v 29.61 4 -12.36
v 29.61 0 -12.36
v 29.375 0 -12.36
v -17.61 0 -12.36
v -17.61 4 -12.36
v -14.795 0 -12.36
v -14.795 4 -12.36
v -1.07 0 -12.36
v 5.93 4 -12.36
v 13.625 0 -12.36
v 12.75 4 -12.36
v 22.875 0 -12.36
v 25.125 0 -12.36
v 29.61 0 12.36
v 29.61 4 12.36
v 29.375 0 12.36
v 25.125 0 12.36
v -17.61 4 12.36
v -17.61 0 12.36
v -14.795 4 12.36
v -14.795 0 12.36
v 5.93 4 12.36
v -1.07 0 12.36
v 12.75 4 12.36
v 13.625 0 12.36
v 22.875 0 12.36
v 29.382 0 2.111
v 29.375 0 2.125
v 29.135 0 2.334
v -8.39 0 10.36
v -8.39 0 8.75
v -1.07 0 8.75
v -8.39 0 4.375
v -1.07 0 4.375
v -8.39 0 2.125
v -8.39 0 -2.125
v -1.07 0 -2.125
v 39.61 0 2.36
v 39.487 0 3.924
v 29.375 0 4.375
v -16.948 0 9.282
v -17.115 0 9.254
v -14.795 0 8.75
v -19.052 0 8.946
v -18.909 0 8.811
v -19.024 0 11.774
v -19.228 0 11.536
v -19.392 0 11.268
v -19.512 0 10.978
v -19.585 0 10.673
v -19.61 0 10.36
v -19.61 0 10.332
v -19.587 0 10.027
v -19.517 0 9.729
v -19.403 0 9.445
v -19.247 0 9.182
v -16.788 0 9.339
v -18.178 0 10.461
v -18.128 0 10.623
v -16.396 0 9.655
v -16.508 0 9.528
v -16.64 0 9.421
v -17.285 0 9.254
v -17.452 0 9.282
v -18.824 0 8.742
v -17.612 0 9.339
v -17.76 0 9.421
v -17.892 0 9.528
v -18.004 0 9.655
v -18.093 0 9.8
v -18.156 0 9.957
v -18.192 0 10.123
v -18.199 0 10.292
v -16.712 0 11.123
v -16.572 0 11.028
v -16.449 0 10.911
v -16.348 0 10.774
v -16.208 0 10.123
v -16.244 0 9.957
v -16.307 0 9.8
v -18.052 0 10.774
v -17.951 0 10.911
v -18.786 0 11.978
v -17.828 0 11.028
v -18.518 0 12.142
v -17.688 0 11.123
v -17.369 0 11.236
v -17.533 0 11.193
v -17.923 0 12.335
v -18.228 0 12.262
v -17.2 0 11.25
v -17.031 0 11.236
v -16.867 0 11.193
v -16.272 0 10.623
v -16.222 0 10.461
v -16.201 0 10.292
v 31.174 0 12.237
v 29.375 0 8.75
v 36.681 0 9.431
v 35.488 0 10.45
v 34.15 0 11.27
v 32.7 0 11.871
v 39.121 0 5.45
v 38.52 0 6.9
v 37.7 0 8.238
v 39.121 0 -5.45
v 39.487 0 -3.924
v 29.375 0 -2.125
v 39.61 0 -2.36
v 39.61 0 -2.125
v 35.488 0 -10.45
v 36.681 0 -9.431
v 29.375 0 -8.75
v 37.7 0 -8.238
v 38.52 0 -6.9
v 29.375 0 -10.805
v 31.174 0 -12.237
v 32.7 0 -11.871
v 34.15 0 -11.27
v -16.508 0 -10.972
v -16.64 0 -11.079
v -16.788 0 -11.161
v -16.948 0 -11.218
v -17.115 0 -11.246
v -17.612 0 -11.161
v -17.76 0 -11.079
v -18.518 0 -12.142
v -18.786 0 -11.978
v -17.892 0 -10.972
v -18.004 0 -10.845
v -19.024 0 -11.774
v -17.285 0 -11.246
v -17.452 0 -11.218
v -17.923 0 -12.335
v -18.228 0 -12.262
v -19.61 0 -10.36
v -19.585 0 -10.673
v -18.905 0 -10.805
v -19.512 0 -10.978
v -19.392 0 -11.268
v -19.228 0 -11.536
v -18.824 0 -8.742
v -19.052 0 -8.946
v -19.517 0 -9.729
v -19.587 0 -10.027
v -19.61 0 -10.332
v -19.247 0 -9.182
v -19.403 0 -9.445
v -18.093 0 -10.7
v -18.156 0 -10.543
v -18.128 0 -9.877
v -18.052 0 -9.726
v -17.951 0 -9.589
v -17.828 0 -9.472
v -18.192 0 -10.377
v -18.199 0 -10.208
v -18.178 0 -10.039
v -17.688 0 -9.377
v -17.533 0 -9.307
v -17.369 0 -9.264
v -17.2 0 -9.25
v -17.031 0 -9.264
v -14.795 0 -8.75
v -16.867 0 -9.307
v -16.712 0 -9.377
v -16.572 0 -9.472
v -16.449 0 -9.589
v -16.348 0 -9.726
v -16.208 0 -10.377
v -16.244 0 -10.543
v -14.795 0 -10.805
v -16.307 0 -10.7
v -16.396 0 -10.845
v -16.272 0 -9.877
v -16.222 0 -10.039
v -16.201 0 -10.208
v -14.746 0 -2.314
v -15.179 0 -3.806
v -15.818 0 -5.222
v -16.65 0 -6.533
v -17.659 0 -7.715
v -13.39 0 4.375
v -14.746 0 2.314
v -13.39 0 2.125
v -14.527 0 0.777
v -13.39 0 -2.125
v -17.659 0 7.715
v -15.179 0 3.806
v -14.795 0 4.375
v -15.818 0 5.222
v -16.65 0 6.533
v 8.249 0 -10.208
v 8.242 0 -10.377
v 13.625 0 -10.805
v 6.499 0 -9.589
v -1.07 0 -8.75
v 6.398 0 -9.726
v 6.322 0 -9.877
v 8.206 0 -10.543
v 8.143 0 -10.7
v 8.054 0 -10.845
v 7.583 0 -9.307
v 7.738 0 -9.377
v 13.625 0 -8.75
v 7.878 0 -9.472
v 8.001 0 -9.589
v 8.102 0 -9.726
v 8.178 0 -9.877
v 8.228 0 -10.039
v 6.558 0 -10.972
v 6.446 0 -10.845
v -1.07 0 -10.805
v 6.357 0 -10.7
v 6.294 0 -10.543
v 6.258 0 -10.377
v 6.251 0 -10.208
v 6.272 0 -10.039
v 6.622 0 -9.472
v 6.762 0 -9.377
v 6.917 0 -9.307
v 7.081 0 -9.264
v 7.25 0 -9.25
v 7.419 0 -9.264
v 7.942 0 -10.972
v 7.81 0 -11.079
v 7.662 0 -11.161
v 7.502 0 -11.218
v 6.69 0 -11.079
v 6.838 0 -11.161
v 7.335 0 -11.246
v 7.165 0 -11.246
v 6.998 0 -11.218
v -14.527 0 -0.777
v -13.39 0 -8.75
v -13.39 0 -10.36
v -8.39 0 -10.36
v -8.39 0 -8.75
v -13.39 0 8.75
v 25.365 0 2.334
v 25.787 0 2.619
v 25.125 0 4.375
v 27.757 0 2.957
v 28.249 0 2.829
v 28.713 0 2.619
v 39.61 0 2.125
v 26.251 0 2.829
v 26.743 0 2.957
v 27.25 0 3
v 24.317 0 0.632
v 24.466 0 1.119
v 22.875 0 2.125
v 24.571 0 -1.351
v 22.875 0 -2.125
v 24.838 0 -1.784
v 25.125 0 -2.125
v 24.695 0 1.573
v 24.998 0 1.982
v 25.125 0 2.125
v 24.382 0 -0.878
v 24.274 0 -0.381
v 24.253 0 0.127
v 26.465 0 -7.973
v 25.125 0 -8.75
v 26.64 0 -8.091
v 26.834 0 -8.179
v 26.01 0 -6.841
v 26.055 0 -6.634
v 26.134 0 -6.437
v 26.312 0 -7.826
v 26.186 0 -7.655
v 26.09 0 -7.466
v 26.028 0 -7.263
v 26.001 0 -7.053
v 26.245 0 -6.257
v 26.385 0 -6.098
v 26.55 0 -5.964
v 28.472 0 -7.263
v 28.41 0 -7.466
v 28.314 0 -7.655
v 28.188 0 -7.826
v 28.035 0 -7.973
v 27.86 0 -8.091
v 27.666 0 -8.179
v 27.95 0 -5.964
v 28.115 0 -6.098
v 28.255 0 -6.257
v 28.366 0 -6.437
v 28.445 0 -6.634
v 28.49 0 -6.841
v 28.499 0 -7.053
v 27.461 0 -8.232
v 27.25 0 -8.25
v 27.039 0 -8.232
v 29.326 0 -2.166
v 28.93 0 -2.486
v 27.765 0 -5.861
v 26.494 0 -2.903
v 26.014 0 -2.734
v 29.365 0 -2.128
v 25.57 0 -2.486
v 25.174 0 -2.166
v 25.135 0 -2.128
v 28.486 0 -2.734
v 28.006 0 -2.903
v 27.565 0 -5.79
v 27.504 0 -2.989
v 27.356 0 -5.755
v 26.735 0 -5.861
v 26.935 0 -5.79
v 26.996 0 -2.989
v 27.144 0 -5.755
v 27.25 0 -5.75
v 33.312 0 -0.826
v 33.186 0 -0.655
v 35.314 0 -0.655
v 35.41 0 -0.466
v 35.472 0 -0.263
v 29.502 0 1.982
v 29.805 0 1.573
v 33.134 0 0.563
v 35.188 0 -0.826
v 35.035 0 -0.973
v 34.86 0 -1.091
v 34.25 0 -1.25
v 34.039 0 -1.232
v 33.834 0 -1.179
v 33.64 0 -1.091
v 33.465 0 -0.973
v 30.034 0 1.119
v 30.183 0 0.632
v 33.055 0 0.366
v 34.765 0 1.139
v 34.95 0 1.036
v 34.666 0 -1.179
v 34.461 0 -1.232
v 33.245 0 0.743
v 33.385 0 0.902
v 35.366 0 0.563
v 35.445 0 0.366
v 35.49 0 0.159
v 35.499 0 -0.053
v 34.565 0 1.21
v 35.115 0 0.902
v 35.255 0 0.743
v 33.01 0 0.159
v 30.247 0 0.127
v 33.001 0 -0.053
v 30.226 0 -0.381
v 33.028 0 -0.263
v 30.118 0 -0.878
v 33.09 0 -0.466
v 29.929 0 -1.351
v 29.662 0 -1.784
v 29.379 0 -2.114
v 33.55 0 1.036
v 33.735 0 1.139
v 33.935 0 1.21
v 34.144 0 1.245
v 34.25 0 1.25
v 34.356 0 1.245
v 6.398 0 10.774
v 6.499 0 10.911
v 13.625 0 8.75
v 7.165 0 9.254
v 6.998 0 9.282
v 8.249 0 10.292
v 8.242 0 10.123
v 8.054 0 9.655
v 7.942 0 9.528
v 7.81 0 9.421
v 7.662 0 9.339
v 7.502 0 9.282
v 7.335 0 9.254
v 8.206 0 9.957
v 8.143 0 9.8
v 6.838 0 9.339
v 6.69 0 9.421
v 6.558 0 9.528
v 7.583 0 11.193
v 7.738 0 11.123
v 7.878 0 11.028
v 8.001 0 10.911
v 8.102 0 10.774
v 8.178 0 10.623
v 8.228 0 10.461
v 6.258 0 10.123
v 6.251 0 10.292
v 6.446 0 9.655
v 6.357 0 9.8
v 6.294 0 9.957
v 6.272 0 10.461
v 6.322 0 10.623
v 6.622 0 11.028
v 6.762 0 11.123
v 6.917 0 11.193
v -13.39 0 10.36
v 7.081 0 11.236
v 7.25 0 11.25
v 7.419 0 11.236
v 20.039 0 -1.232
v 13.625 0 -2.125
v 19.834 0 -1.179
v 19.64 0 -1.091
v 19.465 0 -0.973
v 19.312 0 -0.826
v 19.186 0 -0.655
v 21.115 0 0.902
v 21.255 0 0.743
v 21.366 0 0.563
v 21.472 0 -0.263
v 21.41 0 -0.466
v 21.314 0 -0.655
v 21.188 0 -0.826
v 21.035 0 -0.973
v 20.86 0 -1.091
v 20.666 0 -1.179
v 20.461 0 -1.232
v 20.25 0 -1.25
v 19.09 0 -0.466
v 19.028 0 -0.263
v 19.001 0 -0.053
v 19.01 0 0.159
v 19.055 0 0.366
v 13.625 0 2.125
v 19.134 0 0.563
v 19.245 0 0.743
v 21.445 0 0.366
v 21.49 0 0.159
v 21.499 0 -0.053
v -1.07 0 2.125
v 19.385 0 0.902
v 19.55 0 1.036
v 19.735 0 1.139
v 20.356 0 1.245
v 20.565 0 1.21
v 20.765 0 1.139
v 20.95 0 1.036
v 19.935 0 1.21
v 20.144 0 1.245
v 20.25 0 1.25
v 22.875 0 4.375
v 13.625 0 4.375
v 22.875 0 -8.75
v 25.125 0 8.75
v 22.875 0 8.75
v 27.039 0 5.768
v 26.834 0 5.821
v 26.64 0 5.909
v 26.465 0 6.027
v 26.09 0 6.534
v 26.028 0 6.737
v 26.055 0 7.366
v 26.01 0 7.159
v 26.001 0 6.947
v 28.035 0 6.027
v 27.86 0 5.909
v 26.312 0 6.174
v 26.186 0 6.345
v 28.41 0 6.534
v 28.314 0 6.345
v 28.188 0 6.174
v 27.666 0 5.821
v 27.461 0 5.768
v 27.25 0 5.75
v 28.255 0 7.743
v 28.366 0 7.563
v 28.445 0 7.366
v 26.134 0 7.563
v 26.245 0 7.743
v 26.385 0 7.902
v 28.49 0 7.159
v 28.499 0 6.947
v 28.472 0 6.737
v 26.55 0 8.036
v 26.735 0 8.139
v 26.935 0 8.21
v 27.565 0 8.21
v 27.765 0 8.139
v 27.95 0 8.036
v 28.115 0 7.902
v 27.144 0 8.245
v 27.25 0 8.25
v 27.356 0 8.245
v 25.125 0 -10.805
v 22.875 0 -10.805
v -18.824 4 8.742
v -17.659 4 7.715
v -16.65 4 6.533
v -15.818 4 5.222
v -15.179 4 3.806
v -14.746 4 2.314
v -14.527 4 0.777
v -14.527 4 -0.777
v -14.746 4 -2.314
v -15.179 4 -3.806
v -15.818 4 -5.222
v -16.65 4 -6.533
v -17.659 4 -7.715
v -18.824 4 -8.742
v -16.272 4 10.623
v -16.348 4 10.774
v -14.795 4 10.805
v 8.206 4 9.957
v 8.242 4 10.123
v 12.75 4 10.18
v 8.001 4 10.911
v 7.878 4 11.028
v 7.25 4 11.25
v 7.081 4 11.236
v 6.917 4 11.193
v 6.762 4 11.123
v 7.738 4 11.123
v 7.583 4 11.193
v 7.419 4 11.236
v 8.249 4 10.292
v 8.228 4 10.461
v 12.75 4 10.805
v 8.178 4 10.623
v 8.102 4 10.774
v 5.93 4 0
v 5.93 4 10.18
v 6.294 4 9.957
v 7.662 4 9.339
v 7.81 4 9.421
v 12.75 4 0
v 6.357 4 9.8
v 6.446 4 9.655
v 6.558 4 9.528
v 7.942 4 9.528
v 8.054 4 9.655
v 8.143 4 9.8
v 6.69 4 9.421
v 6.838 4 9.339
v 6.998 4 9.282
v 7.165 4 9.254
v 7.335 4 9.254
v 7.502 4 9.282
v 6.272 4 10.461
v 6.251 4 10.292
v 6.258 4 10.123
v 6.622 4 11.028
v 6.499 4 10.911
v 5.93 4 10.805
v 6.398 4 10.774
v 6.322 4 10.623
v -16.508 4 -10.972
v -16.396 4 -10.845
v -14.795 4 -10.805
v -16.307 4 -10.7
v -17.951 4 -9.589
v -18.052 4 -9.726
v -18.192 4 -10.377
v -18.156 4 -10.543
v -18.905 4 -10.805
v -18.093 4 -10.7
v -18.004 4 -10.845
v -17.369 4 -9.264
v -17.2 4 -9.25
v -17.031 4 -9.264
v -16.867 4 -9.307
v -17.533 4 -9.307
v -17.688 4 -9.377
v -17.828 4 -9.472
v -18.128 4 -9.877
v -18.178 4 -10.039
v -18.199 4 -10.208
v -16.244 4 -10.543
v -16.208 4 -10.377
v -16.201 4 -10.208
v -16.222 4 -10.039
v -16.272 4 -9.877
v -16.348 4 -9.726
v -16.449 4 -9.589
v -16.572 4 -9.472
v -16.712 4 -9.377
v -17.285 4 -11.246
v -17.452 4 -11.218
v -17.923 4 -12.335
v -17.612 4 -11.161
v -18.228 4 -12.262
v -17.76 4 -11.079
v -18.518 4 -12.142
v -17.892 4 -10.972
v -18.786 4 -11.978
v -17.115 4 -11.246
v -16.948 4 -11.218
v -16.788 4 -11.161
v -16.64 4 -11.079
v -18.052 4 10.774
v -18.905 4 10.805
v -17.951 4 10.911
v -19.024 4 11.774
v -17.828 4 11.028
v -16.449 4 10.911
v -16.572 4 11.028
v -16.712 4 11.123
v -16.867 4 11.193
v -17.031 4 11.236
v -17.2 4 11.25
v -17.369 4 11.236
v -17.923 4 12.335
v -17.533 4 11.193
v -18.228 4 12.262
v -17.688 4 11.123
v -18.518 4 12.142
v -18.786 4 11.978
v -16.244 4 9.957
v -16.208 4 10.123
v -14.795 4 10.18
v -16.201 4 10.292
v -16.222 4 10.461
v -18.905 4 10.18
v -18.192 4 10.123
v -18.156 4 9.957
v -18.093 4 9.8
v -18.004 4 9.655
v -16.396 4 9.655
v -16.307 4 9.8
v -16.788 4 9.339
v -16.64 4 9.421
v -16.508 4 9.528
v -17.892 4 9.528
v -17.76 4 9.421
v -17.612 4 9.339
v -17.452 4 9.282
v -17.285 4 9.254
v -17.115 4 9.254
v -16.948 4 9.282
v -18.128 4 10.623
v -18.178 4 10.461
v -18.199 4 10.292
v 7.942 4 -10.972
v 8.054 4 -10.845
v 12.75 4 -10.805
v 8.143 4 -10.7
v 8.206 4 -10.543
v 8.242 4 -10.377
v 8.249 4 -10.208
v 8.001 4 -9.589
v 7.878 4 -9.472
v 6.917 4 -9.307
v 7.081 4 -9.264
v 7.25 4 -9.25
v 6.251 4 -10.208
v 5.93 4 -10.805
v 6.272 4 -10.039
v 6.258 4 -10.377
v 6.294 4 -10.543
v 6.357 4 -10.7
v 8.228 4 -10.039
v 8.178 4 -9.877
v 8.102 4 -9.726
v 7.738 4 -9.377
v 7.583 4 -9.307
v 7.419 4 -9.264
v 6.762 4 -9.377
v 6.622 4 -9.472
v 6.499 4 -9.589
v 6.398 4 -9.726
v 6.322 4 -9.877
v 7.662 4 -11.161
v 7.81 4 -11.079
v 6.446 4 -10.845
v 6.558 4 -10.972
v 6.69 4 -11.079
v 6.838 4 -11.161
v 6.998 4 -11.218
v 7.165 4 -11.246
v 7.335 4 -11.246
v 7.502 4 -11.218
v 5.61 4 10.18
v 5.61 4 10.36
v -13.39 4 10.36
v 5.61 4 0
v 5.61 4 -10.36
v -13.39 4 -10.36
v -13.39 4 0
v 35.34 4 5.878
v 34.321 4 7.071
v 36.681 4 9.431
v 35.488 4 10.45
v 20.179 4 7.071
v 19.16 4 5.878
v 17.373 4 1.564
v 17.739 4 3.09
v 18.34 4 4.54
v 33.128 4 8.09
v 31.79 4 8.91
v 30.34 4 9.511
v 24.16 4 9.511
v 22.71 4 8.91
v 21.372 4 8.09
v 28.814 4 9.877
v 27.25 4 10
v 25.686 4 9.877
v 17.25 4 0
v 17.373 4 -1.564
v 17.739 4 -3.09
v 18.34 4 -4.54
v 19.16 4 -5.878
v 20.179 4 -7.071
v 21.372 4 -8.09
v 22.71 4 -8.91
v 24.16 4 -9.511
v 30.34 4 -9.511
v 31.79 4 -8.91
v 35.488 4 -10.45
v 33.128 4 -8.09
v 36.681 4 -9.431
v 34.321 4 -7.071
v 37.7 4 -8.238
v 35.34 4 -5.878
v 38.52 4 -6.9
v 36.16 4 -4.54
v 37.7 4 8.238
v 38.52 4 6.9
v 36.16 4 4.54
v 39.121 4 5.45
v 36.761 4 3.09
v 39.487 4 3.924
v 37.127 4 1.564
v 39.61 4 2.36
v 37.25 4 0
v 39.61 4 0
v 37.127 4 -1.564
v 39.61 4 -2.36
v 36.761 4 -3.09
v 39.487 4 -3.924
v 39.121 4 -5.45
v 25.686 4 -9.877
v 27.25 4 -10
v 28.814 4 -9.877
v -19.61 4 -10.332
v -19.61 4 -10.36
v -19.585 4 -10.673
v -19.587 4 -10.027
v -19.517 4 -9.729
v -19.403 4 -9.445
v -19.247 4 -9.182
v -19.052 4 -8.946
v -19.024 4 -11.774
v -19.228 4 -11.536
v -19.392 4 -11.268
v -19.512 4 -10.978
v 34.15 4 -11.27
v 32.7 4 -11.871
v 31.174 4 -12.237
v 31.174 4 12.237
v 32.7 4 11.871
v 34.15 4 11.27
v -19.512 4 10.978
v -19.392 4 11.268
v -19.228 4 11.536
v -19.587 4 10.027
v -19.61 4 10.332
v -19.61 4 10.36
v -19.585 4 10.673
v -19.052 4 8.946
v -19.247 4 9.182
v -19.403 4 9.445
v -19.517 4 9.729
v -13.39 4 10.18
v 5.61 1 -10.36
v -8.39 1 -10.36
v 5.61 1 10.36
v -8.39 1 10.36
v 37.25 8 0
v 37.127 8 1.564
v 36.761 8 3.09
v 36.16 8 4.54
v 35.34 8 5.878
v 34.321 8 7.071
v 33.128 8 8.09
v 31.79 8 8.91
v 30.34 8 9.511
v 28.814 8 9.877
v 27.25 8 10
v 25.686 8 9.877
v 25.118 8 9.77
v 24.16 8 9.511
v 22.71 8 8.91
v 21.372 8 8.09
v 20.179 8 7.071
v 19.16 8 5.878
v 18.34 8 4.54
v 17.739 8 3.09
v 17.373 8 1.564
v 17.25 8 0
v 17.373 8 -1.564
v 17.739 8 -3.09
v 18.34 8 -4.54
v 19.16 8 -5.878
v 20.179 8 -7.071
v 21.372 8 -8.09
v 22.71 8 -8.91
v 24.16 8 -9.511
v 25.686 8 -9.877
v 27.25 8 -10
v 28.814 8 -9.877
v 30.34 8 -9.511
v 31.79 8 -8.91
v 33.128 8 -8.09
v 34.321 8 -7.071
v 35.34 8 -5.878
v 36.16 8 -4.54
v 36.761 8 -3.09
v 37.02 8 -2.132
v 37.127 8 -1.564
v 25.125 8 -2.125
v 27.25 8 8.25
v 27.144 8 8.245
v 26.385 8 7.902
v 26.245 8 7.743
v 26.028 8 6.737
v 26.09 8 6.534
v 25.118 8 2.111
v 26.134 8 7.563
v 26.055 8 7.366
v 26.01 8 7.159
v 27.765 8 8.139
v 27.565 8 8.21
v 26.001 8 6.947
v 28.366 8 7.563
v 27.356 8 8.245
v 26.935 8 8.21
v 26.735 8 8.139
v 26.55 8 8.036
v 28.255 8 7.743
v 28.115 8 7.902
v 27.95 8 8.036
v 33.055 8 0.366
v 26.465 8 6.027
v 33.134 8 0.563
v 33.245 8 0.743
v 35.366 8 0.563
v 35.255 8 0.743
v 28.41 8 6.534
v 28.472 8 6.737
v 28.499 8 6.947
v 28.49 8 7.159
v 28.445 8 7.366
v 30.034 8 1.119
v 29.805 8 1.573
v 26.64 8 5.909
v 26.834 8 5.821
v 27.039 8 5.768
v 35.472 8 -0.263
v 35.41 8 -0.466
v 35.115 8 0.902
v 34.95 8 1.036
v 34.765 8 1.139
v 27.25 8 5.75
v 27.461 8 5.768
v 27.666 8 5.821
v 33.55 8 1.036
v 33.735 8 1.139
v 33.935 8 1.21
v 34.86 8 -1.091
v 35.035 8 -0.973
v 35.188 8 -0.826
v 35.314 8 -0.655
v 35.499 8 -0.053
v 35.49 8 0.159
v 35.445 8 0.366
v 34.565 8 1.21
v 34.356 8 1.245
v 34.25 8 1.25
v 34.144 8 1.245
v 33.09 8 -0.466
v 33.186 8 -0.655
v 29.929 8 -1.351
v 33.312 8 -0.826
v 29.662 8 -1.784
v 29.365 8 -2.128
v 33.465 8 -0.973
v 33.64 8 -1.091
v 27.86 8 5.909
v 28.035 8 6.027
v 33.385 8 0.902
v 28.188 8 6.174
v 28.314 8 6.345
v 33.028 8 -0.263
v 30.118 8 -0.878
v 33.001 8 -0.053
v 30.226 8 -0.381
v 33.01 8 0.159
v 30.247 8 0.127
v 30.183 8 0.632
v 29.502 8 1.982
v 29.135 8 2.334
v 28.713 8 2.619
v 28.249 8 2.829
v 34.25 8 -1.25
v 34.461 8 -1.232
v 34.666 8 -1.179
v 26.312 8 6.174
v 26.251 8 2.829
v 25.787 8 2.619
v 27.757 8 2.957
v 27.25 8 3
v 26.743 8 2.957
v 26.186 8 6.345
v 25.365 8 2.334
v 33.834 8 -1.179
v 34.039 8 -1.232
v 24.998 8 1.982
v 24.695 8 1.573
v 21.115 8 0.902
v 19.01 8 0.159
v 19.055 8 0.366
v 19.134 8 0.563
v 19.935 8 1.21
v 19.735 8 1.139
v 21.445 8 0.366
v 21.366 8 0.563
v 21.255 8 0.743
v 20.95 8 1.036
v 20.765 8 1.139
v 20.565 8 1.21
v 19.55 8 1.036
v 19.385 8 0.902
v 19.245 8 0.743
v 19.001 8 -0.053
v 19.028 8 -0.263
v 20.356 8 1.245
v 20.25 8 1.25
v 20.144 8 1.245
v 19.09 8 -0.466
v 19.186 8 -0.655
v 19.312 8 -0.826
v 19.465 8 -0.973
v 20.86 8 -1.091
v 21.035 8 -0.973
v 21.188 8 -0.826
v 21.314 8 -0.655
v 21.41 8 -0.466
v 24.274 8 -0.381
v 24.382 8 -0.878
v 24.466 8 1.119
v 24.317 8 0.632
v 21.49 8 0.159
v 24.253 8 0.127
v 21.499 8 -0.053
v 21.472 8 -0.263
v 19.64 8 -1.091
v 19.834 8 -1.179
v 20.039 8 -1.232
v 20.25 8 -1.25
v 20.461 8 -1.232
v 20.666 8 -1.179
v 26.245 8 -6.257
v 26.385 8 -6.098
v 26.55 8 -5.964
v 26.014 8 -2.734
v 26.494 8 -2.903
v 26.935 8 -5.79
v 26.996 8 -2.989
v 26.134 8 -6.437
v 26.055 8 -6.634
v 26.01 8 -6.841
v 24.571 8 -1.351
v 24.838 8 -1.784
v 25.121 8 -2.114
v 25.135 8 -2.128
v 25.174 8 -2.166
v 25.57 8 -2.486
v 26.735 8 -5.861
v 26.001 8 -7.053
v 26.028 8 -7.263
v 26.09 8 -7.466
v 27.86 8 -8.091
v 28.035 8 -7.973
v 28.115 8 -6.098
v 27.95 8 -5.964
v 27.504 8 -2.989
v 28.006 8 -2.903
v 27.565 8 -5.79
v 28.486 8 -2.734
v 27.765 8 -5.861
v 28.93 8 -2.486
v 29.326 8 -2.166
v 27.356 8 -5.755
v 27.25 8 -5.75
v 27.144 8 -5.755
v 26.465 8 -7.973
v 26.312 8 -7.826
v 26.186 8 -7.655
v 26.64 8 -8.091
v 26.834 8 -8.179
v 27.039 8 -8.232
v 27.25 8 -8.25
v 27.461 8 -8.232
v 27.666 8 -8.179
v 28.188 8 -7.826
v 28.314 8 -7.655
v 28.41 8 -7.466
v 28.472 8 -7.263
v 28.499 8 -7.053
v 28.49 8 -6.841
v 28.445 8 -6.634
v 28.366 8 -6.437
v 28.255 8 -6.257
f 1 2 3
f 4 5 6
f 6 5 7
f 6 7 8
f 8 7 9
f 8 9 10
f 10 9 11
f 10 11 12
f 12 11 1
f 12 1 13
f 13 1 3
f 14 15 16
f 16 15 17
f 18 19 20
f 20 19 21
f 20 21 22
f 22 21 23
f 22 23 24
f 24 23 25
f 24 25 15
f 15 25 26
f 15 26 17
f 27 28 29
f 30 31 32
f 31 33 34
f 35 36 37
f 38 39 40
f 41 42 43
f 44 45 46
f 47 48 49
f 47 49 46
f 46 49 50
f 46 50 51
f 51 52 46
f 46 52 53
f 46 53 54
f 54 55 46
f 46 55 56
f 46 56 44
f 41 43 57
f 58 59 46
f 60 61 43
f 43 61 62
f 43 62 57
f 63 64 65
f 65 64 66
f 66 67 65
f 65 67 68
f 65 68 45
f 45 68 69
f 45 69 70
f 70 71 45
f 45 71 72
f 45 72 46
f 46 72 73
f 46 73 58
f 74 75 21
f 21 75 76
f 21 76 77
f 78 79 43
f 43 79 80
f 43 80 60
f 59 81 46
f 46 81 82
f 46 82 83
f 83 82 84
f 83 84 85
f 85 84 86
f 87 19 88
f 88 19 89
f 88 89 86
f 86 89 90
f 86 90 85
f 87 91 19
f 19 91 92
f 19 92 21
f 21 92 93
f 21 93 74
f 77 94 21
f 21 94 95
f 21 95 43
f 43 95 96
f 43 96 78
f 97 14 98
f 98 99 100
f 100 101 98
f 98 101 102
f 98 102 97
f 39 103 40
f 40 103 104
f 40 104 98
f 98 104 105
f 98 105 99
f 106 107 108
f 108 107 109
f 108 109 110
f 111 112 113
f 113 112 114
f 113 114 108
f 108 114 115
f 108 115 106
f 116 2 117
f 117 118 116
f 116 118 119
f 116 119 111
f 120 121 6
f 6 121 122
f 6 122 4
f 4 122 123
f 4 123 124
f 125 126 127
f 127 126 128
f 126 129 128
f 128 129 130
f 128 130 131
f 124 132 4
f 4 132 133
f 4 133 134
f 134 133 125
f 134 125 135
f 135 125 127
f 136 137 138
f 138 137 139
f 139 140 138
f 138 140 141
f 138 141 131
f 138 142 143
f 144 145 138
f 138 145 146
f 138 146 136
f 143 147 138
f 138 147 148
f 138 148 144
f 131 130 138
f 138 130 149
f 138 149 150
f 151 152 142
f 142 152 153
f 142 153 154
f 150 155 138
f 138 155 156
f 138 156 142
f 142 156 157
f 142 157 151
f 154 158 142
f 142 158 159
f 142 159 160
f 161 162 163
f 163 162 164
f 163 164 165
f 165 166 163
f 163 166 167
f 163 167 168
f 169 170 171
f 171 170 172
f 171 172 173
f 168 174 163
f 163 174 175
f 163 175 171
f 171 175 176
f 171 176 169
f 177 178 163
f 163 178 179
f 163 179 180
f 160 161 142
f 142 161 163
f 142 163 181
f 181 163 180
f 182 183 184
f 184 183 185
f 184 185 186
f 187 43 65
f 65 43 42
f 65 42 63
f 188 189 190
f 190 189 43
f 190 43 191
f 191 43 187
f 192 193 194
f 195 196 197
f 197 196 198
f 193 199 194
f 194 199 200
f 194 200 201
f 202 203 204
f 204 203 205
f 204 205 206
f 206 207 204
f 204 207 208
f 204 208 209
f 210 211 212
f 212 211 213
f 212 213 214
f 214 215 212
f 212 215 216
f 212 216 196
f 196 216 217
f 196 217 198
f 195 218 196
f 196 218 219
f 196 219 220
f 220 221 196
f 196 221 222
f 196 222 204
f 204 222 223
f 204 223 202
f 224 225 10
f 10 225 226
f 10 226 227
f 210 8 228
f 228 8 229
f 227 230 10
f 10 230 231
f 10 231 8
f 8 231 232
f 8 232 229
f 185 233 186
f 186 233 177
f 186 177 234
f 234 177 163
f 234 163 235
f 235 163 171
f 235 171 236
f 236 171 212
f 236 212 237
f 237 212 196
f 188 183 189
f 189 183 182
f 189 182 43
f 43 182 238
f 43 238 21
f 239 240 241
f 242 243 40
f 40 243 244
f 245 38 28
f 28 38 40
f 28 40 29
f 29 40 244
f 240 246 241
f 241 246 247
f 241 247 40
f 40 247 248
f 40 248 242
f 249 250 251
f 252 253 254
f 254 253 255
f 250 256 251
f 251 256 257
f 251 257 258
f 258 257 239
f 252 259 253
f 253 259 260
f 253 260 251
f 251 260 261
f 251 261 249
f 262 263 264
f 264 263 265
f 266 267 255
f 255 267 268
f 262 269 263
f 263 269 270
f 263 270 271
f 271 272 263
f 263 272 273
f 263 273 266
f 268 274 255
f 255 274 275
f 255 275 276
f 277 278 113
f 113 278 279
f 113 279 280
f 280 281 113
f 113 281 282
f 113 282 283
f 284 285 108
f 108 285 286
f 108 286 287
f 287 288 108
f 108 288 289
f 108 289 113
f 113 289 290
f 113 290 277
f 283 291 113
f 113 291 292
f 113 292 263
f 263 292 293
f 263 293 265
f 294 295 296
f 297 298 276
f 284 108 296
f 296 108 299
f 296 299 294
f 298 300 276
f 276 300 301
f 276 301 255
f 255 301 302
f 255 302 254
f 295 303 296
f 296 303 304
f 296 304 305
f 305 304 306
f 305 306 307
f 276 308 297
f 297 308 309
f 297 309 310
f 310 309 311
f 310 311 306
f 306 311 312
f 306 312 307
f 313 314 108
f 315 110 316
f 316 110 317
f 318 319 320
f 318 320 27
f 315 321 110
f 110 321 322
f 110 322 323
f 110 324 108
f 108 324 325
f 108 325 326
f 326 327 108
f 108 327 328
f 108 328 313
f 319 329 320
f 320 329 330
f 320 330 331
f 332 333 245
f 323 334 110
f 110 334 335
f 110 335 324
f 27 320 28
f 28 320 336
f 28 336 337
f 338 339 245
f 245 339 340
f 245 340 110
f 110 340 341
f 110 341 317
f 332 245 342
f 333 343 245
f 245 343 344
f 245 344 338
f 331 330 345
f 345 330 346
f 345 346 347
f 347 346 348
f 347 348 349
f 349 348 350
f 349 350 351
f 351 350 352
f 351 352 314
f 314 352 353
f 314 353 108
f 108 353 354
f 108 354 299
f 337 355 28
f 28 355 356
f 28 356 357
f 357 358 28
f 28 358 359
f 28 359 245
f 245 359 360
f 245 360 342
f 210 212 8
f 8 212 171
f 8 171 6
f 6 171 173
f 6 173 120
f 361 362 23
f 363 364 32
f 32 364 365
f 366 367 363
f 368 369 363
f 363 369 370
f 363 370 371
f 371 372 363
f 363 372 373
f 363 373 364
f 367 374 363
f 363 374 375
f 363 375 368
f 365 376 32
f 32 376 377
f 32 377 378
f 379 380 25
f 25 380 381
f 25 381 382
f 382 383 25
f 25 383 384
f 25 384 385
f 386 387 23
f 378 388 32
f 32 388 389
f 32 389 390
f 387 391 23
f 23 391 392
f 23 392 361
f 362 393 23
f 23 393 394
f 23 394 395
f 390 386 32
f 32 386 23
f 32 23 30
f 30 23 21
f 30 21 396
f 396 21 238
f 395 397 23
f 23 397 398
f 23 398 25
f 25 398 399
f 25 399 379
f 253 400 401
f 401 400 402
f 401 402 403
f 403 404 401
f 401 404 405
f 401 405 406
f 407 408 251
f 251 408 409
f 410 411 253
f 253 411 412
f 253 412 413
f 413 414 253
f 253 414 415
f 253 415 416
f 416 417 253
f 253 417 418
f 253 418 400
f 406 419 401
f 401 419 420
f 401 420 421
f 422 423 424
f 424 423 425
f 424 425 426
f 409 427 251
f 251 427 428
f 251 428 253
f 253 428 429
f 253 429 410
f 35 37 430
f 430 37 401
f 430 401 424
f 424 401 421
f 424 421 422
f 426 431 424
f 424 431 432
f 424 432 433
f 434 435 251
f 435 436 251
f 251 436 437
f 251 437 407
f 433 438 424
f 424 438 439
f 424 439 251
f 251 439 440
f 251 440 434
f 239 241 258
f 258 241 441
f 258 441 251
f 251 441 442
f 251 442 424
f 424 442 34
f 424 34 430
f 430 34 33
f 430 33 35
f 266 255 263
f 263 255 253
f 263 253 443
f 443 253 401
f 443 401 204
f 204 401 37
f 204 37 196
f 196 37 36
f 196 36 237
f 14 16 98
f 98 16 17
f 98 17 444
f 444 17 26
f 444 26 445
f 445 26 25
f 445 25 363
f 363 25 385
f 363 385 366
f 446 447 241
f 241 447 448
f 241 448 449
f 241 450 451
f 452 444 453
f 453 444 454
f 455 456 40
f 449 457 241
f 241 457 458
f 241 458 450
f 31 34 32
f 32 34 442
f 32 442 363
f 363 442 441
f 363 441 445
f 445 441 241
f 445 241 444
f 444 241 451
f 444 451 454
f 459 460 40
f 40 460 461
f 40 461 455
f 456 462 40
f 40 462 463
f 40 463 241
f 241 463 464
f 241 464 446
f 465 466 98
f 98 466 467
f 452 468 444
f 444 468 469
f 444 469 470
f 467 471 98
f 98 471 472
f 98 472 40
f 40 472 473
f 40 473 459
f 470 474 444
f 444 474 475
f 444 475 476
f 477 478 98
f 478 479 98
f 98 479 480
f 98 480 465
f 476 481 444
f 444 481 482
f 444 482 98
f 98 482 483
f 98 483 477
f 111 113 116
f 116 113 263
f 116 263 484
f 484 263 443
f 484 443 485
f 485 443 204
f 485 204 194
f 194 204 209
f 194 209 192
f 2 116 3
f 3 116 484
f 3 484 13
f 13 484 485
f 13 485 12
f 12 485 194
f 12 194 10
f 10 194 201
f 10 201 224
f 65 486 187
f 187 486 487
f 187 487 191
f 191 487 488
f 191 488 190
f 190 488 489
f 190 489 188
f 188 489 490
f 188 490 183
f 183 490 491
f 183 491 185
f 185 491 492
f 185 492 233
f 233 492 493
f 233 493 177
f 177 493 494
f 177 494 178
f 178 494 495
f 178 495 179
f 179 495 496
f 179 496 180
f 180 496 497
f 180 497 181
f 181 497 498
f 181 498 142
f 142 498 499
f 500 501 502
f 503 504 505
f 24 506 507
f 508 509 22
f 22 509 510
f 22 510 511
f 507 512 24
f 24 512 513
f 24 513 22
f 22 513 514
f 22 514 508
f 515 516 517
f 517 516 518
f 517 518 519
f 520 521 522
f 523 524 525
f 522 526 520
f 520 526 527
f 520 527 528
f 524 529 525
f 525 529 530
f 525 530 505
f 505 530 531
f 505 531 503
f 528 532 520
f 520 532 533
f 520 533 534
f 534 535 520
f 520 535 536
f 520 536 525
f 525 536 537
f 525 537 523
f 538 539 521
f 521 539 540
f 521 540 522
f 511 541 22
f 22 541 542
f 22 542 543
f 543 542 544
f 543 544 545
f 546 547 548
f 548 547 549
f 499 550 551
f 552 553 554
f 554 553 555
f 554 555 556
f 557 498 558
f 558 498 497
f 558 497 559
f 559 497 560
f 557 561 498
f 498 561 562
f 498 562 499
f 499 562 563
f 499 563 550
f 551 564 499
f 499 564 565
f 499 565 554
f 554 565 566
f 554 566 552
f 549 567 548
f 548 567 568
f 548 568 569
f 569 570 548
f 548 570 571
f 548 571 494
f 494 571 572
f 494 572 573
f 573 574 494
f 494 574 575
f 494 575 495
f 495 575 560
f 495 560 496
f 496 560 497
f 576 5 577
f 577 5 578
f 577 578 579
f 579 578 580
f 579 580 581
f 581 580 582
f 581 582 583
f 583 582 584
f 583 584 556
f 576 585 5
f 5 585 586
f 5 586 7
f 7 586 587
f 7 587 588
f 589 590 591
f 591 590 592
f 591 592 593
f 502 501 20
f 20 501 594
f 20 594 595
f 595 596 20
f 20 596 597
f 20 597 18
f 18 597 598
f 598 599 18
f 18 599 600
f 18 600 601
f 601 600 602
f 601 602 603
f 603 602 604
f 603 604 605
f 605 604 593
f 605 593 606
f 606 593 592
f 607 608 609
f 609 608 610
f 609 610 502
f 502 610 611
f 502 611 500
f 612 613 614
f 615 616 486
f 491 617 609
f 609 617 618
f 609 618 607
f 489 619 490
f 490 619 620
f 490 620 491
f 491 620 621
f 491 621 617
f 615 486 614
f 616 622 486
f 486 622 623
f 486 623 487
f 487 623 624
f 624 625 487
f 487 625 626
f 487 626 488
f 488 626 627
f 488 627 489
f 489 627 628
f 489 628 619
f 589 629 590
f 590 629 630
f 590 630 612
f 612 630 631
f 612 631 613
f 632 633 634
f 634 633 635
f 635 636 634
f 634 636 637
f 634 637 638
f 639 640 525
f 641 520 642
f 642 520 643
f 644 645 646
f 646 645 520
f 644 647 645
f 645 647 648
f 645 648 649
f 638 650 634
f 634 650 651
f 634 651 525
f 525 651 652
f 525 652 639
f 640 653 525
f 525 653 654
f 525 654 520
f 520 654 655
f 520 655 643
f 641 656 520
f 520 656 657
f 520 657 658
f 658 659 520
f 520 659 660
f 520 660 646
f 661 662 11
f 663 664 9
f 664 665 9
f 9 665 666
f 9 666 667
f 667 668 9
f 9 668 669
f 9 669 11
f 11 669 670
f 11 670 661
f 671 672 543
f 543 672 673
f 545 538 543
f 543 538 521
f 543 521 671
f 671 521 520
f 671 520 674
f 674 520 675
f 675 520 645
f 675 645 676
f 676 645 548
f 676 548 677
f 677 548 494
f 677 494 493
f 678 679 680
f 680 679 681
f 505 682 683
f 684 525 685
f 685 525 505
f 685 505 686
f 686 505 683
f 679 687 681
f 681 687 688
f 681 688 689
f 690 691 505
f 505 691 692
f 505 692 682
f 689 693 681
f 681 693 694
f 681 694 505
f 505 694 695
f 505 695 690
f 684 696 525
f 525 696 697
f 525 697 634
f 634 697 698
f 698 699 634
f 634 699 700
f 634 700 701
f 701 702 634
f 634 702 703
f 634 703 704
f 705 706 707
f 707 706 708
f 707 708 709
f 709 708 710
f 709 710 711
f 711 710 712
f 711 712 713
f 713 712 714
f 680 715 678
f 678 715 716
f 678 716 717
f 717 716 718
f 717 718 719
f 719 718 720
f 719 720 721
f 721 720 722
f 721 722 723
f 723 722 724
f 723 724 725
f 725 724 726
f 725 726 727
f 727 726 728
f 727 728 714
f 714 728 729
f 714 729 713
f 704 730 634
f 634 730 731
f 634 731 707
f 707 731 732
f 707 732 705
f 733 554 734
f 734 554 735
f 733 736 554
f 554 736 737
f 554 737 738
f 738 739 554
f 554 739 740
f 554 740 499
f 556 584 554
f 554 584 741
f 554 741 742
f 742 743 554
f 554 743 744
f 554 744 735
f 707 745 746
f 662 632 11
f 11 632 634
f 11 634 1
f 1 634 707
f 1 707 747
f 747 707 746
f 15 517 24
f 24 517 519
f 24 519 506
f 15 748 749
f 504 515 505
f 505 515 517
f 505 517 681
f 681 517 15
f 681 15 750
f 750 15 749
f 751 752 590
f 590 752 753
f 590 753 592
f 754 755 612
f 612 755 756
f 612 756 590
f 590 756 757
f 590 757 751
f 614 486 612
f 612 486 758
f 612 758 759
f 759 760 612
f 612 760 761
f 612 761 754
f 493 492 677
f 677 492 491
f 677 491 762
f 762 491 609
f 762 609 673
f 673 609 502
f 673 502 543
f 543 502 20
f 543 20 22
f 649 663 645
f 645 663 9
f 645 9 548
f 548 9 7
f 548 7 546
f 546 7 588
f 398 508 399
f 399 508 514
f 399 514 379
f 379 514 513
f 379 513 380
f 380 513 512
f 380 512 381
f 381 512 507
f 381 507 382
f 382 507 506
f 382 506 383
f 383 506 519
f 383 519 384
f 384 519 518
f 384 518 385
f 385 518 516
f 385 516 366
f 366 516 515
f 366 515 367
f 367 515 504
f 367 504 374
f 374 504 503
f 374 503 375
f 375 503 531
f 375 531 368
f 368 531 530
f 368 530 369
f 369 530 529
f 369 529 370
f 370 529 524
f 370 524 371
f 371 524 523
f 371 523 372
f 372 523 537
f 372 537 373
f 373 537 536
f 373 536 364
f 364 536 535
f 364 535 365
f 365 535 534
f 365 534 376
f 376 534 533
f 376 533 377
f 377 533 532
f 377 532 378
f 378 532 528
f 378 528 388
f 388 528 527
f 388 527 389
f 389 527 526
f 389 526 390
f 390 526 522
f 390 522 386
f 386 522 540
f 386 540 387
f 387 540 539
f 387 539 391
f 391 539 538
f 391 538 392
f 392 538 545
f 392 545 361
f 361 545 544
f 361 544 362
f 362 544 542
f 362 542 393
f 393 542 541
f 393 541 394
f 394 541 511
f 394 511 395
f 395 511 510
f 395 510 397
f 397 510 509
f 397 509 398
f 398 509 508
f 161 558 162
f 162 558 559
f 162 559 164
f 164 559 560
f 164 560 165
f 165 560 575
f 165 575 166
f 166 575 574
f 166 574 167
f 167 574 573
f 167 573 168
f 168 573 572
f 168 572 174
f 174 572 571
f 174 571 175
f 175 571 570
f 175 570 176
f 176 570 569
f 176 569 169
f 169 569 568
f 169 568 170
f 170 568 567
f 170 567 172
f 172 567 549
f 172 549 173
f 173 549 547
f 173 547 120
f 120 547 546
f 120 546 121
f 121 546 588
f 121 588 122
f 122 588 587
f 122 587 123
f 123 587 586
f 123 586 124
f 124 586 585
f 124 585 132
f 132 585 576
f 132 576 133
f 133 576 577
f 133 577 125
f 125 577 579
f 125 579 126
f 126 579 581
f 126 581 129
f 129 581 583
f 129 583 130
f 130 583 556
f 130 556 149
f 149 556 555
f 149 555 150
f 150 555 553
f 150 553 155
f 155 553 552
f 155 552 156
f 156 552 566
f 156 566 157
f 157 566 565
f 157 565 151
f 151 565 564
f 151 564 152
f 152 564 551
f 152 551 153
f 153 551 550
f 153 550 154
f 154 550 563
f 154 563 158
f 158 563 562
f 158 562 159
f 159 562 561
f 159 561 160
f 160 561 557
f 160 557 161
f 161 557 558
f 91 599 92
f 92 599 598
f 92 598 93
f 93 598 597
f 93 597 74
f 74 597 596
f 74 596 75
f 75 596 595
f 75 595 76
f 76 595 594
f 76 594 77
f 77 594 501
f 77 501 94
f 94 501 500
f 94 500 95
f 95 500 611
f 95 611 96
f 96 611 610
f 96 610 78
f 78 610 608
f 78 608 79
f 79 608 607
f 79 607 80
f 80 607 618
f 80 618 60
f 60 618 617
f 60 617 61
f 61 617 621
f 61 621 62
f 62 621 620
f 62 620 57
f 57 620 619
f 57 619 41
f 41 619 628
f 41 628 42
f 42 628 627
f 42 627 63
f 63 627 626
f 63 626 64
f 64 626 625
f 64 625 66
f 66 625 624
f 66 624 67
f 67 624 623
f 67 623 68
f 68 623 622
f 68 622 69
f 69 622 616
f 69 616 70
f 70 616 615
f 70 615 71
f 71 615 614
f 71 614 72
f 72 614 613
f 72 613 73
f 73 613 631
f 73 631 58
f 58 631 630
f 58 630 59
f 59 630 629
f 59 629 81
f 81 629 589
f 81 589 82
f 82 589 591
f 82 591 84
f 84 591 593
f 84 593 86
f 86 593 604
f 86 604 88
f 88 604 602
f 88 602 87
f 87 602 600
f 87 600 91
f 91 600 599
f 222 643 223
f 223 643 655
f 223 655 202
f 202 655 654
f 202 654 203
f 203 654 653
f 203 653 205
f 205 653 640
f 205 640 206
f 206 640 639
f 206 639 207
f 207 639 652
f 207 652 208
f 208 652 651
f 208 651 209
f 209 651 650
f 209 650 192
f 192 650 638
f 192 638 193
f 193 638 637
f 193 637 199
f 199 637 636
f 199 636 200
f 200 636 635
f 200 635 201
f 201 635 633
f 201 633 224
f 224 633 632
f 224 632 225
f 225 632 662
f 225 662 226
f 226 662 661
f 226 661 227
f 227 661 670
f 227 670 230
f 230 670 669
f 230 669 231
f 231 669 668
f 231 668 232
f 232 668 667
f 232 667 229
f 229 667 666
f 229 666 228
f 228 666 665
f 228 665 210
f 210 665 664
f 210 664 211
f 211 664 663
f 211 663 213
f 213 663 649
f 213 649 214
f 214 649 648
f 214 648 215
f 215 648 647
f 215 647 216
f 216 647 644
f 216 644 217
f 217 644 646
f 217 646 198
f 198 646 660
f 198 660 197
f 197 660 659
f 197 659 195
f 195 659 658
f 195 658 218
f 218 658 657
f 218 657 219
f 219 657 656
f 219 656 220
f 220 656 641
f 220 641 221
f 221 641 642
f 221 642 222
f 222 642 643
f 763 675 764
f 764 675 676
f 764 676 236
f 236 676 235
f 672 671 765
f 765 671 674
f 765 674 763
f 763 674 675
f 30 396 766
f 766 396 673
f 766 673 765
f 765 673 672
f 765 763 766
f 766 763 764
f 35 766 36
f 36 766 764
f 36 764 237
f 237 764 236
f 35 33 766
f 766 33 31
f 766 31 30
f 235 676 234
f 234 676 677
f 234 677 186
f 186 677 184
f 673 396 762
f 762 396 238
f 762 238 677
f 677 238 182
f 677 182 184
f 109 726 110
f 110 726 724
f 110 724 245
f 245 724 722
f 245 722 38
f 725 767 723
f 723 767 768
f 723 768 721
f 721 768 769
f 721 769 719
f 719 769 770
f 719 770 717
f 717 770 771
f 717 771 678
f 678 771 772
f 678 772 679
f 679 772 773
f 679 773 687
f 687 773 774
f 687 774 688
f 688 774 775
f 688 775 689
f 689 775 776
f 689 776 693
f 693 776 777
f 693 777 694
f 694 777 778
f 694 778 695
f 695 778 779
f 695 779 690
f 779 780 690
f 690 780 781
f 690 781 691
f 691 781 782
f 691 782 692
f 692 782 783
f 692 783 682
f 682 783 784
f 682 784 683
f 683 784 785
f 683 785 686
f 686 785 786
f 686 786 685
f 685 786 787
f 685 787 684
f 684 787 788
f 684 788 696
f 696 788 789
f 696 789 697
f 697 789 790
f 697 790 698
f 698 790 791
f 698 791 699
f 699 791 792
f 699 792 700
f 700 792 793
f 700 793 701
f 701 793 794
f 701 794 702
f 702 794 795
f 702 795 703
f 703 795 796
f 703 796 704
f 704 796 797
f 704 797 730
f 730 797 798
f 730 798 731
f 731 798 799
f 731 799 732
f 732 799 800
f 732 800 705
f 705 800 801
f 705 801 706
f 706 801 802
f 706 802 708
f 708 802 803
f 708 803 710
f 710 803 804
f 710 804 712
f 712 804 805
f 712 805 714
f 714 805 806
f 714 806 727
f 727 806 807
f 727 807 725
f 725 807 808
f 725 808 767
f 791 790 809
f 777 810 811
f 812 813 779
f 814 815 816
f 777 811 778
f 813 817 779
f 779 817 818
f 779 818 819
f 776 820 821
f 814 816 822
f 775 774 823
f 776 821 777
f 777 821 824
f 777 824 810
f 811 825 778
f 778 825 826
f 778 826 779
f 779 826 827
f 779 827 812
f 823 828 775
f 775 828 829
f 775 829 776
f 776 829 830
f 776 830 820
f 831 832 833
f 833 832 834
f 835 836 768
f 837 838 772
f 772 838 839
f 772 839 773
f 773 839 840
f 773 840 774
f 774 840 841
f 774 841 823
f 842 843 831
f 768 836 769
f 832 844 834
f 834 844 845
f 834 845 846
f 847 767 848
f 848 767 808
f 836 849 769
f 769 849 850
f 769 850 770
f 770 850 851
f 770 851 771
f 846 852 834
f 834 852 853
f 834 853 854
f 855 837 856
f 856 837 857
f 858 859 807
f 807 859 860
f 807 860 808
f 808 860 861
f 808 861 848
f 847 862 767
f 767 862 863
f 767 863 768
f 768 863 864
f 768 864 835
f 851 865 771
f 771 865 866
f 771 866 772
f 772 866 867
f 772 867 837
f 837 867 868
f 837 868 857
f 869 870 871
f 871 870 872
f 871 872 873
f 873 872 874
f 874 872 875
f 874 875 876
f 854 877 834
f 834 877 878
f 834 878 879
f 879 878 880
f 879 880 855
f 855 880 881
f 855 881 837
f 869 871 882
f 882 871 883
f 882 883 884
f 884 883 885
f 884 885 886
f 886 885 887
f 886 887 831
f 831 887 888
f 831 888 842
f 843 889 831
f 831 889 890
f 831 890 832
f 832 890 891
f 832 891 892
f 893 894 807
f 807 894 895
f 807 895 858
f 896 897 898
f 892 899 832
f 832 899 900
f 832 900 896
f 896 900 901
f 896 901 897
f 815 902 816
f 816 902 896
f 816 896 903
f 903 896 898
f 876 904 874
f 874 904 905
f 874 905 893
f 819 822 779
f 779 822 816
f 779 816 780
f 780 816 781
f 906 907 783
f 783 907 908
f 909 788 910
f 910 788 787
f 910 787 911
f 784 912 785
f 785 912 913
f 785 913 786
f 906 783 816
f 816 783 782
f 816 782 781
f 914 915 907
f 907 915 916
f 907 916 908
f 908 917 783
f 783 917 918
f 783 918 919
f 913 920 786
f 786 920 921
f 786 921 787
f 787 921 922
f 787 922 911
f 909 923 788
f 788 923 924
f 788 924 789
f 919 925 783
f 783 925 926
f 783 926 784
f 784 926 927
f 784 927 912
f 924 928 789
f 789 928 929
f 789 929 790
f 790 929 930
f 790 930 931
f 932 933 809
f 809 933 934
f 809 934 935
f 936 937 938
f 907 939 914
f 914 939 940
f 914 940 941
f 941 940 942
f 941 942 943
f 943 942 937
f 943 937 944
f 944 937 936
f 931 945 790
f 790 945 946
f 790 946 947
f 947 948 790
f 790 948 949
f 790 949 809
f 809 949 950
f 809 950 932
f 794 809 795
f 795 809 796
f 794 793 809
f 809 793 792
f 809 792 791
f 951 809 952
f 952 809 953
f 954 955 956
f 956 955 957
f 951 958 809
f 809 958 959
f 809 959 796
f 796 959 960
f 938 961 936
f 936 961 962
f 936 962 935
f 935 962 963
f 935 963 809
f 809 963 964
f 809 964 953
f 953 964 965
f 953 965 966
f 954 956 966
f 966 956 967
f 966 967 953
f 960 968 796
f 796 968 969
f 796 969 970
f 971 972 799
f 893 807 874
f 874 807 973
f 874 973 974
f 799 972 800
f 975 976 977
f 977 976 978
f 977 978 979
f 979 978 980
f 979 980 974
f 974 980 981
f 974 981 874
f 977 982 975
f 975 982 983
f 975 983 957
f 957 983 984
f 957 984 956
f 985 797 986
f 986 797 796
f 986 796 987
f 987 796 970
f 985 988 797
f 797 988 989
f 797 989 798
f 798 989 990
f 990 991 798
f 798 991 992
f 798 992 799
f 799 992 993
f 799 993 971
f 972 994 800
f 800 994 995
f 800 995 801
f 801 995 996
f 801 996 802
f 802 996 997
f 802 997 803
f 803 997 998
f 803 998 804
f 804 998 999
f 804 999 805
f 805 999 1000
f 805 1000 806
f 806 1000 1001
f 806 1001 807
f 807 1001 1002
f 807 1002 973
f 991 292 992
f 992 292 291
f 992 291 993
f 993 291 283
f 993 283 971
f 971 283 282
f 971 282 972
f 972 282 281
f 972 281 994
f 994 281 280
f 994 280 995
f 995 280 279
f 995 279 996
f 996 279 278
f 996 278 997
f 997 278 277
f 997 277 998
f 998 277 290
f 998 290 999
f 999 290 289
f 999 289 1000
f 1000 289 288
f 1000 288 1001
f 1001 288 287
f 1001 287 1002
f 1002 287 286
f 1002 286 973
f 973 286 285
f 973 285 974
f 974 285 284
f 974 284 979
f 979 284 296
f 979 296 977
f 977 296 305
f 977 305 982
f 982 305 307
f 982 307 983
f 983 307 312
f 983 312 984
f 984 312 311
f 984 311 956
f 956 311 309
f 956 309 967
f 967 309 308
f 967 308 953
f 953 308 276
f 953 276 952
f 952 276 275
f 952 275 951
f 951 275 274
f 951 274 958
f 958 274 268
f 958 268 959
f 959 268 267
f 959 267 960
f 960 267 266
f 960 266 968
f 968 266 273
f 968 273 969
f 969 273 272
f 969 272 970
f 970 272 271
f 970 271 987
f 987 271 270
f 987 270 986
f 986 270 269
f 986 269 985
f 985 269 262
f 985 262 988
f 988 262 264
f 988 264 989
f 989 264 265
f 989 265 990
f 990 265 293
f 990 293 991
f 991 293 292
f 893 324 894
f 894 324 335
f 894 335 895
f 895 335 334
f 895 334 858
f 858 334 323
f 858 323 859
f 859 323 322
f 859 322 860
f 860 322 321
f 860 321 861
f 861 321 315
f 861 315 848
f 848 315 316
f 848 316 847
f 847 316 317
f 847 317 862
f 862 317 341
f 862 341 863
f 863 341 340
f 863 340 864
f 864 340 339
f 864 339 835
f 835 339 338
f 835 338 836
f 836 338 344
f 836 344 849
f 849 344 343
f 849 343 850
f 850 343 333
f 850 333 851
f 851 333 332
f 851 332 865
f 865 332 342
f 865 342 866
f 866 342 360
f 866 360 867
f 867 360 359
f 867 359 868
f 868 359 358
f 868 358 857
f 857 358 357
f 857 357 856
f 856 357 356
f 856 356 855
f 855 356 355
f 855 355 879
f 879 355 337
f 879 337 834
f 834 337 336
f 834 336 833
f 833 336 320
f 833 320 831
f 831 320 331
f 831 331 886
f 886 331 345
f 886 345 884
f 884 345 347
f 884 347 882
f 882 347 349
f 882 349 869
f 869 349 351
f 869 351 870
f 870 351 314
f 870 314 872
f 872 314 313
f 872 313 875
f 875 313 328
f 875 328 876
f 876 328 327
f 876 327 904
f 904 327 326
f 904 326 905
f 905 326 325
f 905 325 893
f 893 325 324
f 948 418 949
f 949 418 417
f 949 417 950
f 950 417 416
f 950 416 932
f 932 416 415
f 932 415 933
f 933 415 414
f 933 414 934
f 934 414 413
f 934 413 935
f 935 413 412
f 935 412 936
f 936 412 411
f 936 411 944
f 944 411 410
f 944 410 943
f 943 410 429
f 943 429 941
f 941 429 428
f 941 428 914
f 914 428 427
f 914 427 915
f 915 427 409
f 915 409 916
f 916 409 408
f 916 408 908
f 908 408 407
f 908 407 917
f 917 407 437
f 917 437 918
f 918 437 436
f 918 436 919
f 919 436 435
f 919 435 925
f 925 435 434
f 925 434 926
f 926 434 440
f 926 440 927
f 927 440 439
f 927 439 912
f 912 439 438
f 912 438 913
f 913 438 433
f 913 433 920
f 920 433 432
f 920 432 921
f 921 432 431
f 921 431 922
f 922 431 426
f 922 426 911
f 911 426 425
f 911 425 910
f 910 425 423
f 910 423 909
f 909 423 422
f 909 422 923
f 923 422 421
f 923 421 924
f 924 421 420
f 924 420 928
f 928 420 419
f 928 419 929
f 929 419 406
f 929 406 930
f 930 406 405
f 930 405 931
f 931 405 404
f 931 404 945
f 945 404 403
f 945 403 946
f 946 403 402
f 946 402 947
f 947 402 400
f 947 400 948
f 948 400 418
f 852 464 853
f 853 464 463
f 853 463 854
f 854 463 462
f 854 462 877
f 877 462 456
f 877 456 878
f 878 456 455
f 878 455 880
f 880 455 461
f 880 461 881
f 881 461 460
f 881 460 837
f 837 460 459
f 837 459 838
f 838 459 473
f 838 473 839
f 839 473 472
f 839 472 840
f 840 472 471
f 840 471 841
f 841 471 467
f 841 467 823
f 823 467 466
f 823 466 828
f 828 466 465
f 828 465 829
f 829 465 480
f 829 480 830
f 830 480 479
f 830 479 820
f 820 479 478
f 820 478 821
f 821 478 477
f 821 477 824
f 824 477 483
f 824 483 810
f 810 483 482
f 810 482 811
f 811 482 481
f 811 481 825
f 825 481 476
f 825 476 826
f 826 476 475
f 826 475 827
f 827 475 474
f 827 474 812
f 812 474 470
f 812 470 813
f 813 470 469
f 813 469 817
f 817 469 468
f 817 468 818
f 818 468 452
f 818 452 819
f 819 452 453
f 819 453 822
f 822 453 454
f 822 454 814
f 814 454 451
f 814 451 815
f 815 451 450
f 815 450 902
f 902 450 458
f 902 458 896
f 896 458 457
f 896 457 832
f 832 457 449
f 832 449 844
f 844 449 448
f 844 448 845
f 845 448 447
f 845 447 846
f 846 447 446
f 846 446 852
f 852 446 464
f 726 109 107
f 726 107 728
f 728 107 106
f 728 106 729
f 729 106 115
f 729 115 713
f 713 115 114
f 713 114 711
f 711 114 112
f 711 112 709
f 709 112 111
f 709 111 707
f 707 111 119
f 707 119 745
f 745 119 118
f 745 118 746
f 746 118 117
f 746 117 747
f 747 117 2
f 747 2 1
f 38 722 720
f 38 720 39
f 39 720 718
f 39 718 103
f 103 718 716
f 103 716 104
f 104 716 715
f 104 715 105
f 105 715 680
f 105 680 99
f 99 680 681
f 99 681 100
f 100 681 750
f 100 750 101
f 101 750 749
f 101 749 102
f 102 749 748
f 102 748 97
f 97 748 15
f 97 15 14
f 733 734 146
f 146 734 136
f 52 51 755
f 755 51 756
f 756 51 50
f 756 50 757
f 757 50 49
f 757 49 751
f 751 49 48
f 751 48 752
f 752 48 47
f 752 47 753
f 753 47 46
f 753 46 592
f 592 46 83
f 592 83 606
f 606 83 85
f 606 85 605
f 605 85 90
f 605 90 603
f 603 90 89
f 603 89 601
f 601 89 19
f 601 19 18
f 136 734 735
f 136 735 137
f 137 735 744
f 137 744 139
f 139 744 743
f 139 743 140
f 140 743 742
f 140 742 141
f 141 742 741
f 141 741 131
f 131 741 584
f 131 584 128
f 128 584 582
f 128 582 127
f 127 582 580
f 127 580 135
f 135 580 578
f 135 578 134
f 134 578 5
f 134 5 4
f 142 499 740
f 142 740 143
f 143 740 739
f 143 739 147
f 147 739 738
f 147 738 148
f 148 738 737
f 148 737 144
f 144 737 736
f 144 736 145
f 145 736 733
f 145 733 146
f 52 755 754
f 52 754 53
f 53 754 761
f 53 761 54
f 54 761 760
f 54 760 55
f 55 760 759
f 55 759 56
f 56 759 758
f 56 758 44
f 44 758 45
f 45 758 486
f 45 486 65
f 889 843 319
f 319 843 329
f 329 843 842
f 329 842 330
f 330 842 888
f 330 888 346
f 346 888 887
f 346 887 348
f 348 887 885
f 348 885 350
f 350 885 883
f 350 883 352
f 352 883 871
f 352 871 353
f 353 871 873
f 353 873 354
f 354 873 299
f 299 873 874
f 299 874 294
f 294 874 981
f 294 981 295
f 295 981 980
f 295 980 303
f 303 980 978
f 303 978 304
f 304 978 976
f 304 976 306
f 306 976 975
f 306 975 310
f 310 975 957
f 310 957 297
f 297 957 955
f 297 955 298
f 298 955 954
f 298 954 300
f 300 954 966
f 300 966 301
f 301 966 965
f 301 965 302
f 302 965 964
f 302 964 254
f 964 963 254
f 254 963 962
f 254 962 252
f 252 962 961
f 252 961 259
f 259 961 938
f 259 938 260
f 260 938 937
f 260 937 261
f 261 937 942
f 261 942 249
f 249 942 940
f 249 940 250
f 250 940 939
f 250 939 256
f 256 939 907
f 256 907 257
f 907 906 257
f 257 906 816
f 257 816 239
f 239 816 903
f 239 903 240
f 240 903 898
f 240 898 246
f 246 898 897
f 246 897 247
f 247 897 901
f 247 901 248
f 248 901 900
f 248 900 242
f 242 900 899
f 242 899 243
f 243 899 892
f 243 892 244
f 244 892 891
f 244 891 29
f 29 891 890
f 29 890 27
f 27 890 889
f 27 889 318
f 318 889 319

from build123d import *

# Parameters (mm, degrees)
EXTRUDE_1_DEPTH          = 4
CUT_EXTRUDE_1_DEPTH      = 38.905694823
CUT_EXTRUDE_1_DEPTH_BACK = 38.905694823
SKETCH_2_R               = 1
SKETCH_3_W               = 14
SKETCH_3_H               = 20.72
CUT_EXTRUDE_3_DEPTH      = 3
SKETCH_5_W               = 5
SKETCH_5_H               = 20.72
CUT_EXTRUDE_4_DEPTH      = 4
SKETCH_13_W              = 24.72
SKETCH_13_H              = 4
EXTRUDE_5_DEPTH          = 30
SKETCH_15_R              = 10
EXTRUDE_6_DEPTH          = 4
SKETCH_14_R              = 1.25
CUT_EXTRUDE_7_DEPTH      = 4
FILLET_1_R               = 10
FILLET_2_R               = 10
SKETCH_6_R               = 11
CUT_EXTRUDE_9_DEPTH      = 4
SKETCH_17_W              = 24.72
SKETCH_17_H              = 4
CUT_EXTRUDE_10_DEPTH     = 16
FILLET_3_R               = 2
FILLET_4_R               = 2
FILLET_5_R               = 2
FILLET_6_R               = 2
SKETCH_18_R              = 3
CUT_EXTRUDE_11_DEPTH     = 13


with BuildPart() as part:
    # 草图1 → 凸台-拉伸1 (new body)
    with BuildSketch(Plane(origin=(0, 0, 0), x_dir=(1, 0, 0), z_dir=(0, 1, 0))):
        with BuildLine():
            Line((6.61, -12.36), (9.61, -12.36))
            Line((9.61, -12.36), (9.61, -9.36))
            Line((9.61, -9.36), (9.61, 9.36))
            Line((9.61, 9.36), (9.61, 12.36))
            Line((9.61, 12.36), (6.61, 12.36))
            Line((6.61, 12.36), (-32.61, 12.36))
            ThreePointArc((-32.61, 12.36), (-34.731320344, 11.481320344), (-35.61, 9.36))
            Line((-35.61, 9.36), (-35.61, -9.36))
            ThreePointArc((-35.61, -9.36), (-34.731320344, -11.481320344), (-32.61, -12.36))
            Line((-32.61, -12.36), (6.61, -12.36))
        make_face()
    extrude(amount=EXTRUDE_1_DEPTH)

    # 草图2 → 切除-拉伸1 (cut, two sides: drawn at the far end of the back side and taken through both)
    with BuildSketch(Plane(origin=(0, 0, 0), x_dir=(1, 0, 0), z_dir=(0, 1, 0)).offset(-CUT_EXTRUDE_1_DEPTH_BACK)):
        with Locations(Location((7.25, -10.25, 0), (0, 0, 270))):
            Circle(SKETCH_2_R)
        with Locations(Location((7.25, 10.25, 0), (0, 0, 270))):
            Circle(SKETCH_2_R)
        with Locations(Location((-17.2, -10.25, 0), (0, 0, 270))):
            Circle(SKETCH_2_R)
        with Locations(Location((-17.2, 10.25, 0), (0, 0, 270))):
            Circle(SKETCH_2_R)
    extrude(amount=CUT_EXTRUDE_1_DEPTH + CUT_EXTRUDE_1_DEPTH_BACK, mode=Mode.SUBTRACT)

    # 草图3 → 切除-拉伸3 (cut)
    with BuildSketch(Plane(origin=(0, 4, 0), x_dir=(1, 0, 0), z_dir=(0, 1, 0))):
        with Locations((-1.39, 0)):
            Rectangle(SKETCH_3_W, SKETCH_3_H)
    extrude(amount=-CUT_EXTRUDE_3_DEPTH, mode=Mode.SUBTRACT)

    # 草图5 → 切除-拉伸4 (cut)
    with BuildSketch(Plane(origin=(0, 4, 0), x_dir=(1, 0, 0), z_dir=(0, 1, 0))):
        with Locations((-10.89, 0)):
            Rectangle(SKETCH_5_W, SKETCH_5_H)
    extrude(amount=-CUT_EXTRUDE_4_DEPTH, mode=Mode.SUBTRACT)

    # 草图13 → 凸台-拉伸5 (add)
    with BuildSketch(Plane(origin=(9.61, 0, 0), x_dir=(0, 0, -1), z_dir=(1, 0, 0))):
        with Locations((0, 2)):
            Rectangle(SKETCH_13_W, SKETCH_13_H)
    extrude(amount=EXTRUDE_5_DEPTH)

    # 草图15 → 凸台-拉伸6 (add)
    with BuildSketch(Plane(origin=(0, 4, 0), x_dir=(1, 0, 0), z_dir=(0, 1, 0))):
        with Locations(Location((27.25, 0, 0), (0, 0, 270))):
            Circle(SKETCH_15_R)
    extrude(amount=EXTRUDE_6_DEPTH)

    # 草图14 → 切除-拉伸7 (cut, symmetric)
    with BuildSketch(Plane(origin=(0, 4, 0), x_dir=(1, 0, 0), z_dir=(0, 1, 0))):
        with Locations(Location((27.25, -7, 0), (0, 0, 270))):
            Circle(SKETCH_14_R)
        with Locations(Location((34.25, 0, 0), (0, 0, 270))):
            Circle(SKETCH_14_R)
        with Locations(Location((27.25, 7, 0), (0, 0, 270))):
            Circle(SKETCH_14_R)
        with Locations(Location((20.25, 0, 0), (0, 0, 270))):
            Circle(SKETCH_14_R)
    extrude(amount=CUT_EXTRUDE_7_DEPTH, both=True, mode=Mode.SUBTRACT)

    # 圆角1
    fillet_1_edges = [part.edges().sort_by_distance(p)[0] for p in [
        (39.61, 2, -12.36),
    ]]
    fillet(fillet_1_edges, radius=FILLET_1_R)

    # 圆角2
    fillet_2_edges = [part.edges().sort_by_distance(p)[0] for p in [
        (39.61, 2, 12.36),
    ]]
    fillet(fillet_2_edges, radius=FILLET_2_R)

    # 草图6 → 切除-拉伸9 (cut)
    with BuildSketch(Plane(origin=(0, 4, 0), x_dir=(1, 0, 0), z_dir=(0, 1, 0))):
        with Locations((-25.5, 0)):
            Circle(SKETCH_6_R)
    extrude(amount=-CUT_EXTRUDE_9_DEPTH, mode=Mode.SUBTRACT)

    # 草图17 → 切除-拉伸10 (cut)
    with BuildSketch(Plane.ZY.offset(35.61)):
        with Locations((0, 2)):
            Rectangle(SKETCH_17_W, SKETCH_17_H)
    extrude(amount=-CUT_EXTRUDE_10_DEPTH, mode=Mode.SUBTRACT)

    # 圆角3
    fillet_3_edges = [part.edges().sort_by_distance(p)[0] for p in [
        (-19.61, 2, 12.36),
    ]]
    fillet(fillet_3_edges, radius=FILLET_3_R)

    # 圆角4
    fillet_4_edges = [part.edges().sort_by_distance(p)[0] for p in [
        (-19.61, 2, -12.36),
    ]]
    fillet(fillet_4_edges, radius=FILLET_4_R)

    # 圆角5
    fillet_5_edges = [part.edges().sort_by_distance(p)[0] for p in [
        (-19.61, 2, -9.290204519),
    ]]
    fillet(fillet_5_edges, radius=FILLET_5_R)

    # 圆角6
    fillet_6_edges = [part.edges().sort_by_distance(p)[0] for p in [
        (-19.61, 2, 9.290204519),
    ]]
    fillet(fillet_6_edges, radius=FILLET_6_R)

    # 草图18 → 切除-拉伸11 (cut)
    with BuildSketch(Plane(origin=(0, 8, 0), x_dir=(1, 0, 0), z_dir=(0, 1, 0))):
        with Locations(Location((27.25, 0, 0), (0, 0, 270))):
            Circle(SKETCH_18_R)
    extrude(amount=-CUT_EXTRUDE_11_DEPTH, mode=Mode.SUBTRACT)


solid = part.part
